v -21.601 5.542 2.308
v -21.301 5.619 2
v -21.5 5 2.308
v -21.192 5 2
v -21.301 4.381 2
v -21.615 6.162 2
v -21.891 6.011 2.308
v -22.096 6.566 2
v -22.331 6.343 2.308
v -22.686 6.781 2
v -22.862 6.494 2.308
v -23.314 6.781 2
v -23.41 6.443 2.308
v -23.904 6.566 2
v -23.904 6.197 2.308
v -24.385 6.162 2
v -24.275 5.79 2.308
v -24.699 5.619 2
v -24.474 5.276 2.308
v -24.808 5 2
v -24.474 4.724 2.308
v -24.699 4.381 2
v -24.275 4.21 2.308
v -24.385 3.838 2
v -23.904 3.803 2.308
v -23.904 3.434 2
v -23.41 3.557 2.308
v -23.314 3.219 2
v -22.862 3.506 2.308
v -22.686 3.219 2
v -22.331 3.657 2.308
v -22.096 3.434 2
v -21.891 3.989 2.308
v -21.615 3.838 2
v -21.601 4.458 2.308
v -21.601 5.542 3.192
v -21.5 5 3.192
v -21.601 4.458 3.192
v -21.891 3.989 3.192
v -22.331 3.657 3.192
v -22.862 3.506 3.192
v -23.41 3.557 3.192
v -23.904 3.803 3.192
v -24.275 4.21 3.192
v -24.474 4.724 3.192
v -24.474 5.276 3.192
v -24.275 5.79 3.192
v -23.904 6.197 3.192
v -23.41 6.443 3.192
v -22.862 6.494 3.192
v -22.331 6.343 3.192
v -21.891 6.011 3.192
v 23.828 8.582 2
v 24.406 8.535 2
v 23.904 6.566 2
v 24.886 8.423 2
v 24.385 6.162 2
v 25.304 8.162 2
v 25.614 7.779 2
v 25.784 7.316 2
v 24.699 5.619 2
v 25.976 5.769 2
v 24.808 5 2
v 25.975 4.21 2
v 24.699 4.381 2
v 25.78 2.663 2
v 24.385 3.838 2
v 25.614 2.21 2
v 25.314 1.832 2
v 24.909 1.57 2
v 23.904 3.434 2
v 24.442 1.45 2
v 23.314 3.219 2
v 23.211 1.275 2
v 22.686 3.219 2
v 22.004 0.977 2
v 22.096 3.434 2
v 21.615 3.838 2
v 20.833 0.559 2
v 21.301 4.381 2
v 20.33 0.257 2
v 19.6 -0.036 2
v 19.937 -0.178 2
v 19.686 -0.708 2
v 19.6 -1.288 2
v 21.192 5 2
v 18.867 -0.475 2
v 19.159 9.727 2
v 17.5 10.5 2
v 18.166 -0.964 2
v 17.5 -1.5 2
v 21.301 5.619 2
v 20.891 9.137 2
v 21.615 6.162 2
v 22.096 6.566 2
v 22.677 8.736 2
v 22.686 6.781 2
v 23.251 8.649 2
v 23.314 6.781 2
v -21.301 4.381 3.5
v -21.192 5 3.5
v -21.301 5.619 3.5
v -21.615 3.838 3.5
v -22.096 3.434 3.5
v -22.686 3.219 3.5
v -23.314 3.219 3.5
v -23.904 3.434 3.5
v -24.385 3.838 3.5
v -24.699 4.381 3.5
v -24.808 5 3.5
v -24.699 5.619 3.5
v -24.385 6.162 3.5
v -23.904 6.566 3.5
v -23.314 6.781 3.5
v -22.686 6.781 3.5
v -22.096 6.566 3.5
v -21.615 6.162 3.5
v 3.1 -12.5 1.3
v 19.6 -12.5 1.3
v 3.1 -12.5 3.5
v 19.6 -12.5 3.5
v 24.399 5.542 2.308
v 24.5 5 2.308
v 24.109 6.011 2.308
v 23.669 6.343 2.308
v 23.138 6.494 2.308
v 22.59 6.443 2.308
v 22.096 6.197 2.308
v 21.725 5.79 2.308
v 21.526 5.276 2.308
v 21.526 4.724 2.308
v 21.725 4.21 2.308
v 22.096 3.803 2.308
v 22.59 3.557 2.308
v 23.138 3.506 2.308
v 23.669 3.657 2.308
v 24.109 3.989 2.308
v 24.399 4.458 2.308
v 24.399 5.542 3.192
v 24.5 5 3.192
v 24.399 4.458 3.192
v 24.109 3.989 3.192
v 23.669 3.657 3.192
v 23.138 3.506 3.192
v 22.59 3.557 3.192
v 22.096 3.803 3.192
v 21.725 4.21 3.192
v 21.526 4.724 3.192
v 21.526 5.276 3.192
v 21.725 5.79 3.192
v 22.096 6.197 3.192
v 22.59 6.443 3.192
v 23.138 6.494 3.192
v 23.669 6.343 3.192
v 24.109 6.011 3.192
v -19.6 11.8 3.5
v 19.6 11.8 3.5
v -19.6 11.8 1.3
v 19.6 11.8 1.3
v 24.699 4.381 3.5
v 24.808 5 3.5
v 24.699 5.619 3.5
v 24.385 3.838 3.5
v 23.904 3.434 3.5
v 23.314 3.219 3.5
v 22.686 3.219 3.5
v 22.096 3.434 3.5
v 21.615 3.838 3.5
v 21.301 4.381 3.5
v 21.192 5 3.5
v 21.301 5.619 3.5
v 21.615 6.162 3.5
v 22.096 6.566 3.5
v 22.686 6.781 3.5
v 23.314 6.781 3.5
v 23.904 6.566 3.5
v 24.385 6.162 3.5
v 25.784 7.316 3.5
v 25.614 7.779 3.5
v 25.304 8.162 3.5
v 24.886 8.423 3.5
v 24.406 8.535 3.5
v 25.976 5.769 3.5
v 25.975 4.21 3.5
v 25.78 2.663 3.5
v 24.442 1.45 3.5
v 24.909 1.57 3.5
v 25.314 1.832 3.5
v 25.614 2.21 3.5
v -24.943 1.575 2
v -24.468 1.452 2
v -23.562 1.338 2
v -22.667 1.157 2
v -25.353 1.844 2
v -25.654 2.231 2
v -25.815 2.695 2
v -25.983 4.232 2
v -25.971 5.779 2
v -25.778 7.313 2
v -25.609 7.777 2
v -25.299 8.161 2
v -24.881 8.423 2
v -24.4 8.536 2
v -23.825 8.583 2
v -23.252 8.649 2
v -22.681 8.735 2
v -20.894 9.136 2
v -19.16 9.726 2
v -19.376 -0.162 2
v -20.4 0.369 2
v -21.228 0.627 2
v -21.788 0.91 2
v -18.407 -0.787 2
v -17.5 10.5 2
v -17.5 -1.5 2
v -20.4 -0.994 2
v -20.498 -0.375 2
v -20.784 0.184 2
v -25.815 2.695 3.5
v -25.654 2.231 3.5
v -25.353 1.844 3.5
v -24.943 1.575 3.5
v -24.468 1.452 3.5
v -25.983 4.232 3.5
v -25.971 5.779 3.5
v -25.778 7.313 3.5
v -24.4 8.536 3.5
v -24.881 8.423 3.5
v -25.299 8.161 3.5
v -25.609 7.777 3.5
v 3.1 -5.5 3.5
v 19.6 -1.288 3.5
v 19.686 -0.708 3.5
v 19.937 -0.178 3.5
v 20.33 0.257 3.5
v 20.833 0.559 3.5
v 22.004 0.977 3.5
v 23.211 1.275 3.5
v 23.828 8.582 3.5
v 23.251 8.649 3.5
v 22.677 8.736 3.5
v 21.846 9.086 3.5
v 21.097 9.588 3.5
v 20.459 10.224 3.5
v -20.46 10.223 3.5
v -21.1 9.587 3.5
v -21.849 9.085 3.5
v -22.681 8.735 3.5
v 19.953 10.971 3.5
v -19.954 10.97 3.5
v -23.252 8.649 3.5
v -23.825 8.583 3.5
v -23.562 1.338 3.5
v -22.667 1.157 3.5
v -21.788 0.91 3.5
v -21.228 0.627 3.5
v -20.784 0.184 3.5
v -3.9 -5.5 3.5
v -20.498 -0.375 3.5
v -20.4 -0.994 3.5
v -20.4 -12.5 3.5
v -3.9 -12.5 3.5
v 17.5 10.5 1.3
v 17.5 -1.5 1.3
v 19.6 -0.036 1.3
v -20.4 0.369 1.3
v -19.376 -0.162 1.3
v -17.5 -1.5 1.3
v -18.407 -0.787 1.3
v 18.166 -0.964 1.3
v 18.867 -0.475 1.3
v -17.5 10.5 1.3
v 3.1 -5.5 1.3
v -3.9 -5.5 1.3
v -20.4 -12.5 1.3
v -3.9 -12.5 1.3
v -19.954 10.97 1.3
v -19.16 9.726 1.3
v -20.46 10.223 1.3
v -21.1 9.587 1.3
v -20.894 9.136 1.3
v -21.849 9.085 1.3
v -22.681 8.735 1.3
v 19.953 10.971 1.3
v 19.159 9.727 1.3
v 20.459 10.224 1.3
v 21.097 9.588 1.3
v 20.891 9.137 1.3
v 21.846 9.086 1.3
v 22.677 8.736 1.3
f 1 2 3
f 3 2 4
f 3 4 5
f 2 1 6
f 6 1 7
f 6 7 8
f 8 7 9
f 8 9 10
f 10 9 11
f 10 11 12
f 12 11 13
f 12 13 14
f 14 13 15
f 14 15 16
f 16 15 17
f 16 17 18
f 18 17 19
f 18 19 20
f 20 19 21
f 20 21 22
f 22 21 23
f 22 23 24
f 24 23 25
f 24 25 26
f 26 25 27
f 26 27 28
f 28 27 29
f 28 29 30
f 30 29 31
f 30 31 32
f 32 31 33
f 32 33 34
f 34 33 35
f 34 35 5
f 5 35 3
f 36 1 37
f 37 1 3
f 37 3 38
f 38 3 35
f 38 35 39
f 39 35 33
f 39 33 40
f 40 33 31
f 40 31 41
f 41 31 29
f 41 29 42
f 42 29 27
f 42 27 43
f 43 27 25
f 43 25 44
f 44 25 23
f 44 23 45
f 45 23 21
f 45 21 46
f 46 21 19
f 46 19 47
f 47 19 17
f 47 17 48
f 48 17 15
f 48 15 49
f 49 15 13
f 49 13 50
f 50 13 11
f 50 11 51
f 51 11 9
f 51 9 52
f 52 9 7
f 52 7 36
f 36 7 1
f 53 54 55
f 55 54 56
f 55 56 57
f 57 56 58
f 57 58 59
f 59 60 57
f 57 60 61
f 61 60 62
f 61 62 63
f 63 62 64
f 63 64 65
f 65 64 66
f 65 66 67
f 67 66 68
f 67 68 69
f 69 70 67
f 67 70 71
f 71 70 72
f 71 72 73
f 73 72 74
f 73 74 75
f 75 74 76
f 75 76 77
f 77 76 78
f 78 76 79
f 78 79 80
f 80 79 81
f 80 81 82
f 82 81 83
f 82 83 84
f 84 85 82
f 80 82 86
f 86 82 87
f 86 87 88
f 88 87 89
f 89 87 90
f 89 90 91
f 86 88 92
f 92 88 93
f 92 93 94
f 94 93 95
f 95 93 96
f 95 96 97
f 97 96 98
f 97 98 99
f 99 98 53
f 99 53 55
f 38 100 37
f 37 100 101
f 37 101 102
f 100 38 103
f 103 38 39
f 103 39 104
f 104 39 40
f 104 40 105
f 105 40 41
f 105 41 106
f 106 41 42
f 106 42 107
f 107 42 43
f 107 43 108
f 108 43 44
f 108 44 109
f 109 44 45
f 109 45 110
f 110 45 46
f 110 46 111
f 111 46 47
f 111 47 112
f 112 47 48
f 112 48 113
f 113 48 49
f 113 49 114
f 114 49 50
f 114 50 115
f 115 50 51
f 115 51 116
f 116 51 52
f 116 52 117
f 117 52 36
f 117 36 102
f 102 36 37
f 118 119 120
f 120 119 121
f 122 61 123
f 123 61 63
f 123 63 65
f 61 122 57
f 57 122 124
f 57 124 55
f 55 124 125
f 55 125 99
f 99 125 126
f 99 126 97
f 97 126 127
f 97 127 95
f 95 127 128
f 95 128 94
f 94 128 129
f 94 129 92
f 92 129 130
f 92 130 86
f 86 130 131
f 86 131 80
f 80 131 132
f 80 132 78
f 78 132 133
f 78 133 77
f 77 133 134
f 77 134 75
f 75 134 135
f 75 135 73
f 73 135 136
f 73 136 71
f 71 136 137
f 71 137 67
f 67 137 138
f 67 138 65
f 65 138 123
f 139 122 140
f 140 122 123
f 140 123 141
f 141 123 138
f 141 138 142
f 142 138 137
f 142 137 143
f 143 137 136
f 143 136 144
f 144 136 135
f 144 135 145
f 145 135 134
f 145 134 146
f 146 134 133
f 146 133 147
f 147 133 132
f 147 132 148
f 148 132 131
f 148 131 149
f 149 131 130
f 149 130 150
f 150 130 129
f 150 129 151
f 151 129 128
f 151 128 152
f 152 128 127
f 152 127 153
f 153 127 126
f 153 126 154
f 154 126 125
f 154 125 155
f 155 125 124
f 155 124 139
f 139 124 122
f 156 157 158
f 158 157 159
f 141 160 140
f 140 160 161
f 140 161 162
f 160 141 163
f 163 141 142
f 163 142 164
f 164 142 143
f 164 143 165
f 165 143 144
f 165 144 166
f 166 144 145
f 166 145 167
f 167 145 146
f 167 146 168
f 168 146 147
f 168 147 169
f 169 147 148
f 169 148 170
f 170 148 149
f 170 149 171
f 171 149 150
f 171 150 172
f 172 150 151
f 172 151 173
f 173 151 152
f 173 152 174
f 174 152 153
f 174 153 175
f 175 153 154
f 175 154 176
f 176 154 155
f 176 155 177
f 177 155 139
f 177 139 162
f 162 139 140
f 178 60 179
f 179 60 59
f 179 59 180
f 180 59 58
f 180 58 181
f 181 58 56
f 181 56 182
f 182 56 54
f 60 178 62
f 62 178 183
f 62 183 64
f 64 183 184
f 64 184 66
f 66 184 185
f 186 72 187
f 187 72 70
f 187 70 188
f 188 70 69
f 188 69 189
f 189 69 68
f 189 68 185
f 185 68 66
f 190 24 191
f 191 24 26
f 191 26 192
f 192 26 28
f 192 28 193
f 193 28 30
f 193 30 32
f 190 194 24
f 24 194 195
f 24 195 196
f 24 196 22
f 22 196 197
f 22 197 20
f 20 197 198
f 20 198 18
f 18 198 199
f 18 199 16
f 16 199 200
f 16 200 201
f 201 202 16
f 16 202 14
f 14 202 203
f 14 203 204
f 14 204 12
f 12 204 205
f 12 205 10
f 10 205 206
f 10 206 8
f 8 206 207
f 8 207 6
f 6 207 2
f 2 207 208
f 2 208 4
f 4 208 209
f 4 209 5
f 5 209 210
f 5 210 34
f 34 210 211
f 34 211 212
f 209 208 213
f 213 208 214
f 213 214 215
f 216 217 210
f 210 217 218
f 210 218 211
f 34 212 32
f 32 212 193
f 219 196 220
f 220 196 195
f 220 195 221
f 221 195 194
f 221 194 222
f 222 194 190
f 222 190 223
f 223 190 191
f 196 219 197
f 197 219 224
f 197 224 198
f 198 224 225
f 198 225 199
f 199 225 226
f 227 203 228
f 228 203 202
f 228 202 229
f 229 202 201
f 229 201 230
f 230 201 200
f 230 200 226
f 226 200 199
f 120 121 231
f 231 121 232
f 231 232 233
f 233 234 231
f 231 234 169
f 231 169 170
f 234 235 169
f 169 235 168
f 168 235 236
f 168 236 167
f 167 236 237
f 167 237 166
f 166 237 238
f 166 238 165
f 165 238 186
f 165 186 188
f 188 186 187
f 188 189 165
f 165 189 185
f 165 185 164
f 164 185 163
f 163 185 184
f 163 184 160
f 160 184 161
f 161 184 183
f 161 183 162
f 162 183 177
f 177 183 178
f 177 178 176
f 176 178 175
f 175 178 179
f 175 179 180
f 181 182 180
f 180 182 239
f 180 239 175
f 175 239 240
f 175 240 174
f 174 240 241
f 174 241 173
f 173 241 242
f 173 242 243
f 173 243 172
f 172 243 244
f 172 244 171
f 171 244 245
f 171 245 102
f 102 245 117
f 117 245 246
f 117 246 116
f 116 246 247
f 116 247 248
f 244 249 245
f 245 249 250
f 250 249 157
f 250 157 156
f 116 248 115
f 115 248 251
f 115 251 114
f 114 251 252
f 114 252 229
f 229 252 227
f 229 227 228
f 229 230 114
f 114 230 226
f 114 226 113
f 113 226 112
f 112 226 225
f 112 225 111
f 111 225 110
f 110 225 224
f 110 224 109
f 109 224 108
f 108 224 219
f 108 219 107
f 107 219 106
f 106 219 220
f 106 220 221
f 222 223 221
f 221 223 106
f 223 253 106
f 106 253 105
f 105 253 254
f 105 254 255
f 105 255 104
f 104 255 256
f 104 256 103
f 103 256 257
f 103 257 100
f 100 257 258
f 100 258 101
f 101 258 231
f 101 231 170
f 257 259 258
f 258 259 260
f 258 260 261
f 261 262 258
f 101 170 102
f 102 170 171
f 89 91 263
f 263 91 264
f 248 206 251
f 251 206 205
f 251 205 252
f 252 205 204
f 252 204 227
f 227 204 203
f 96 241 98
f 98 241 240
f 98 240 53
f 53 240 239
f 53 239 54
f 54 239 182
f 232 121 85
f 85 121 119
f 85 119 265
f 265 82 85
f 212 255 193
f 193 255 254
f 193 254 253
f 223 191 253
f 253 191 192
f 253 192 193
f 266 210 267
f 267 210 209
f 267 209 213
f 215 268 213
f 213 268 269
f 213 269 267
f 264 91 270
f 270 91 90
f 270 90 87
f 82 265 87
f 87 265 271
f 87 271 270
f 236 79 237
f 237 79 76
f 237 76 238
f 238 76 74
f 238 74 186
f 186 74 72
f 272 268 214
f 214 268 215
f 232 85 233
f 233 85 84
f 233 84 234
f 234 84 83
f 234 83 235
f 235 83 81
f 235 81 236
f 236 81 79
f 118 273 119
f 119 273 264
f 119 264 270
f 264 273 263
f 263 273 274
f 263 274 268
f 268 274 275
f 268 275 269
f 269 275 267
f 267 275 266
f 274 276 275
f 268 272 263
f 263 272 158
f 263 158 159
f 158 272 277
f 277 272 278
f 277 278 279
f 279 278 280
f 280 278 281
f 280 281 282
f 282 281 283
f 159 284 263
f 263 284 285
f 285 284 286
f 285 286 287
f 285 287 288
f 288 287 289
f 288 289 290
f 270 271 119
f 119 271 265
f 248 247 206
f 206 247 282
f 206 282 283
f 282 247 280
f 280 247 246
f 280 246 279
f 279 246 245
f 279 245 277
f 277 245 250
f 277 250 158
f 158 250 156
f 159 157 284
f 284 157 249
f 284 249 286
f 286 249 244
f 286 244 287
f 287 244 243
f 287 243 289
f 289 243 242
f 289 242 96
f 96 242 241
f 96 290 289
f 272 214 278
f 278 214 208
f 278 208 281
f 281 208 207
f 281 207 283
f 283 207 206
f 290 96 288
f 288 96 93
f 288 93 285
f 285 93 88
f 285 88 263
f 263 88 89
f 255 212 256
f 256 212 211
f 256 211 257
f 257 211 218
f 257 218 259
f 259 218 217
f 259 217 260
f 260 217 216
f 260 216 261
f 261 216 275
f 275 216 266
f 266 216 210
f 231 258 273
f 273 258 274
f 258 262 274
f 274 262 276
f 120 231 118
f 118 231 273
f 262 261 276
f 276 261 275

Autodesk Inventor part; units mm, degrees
ref_plane "YZ Plane" through (0, 0, 0) normal (1, 0, 0) x (0, 1, 0)
ref_plane "XZ Plane" through (0, 0, 0) normal (0, 1, 0) x (-1, 0, 0)
ref_plane "XY Plane" through (0, 0, 0) normal (0, 0, 1) x (1, 0, 0)
sketch "Sketch1" plane through (0, 0, 0) normal (0, 0, 1) x (1, 0, 0)
  line L0 (0, 0) -> (-17.5, 0) construction
  line L1 (-17.5, 0) -> (17.5, 0) construction
  line L2 (17.5, 0) -> (17.5, -10.5)
  line L3 (17.5, -10.5) -> (17.5, 10.5)
  line L4 (17.5, 10.5) -> (-17.5, 10.5)
  line L5 (-17.5, 10.5) -> (-17.5, -10.5)
  line L6 (17.5, -10.5) -> (3.5, -10.5)
  line L7 (3.5, -10.5) -> (3.5, -5.5)
  line L8 (3.5, -5.5) -> (-3.5, -5.5)
  line L9 (-3.5, -5.5) -> (-3.5, -10.5)
  line L10 (-3.5, -10.5) -> (-17.5, -10.5)
  dimension "d4" = 17.5
  dimension "d5" = 35
  dimension "d6" = 10.5
  dimension "d7" = 21
  dimension "d8" = 14
  dimension "d9" = 5
  dimension "d10" = 7
extrude "Extrusion1" add sketch "Sketch1" along normal blind 3.5
sketch "Sketch2" plane through (0, 0, 0) normal (0, 0, -1) x (-1, 0, 0)
  line L0 (-17.5, -10.5) -> (-17.5, 10.5) construction
  line L1 (-17.5, 10.5) -> (-16.5, 10.5) construction
  line L2 (-17.5, 10.5) -> (17.5, 10.5) construction
  line L3 (-16.5, 10.5) -> (-16.5, 9.5) construction
  line L4 (-16.5, 9.5) -> (-17.5, 9.5) construction
  line L5 (-16.5, 9.5) -> (-13.5, 9.5) construction
  line L6 (-15, 9.5) -> (-15, 8) construction
  line L7 (-16.5, 9.5) -> (-16.5, 7.1912) construction
  circle A0 centre (-15, 8) radius 1.5 construction
  circle A1 centre (-15, 8) radius 1.5
  line L8 (-15, 8) -> (-17.5, 8) construction
  line L9 (17.5, 10.5) -> (17.5, -10.5) construction
  line L10 (17.5, 10.5) -> (16.5, 10.5) construction
  line L11 (16.5, 10.5) -> (17.5, 10.5) construction
  line L12 (17.5, 10.5) -> (17.5, 9.5) construction
  line L13 (17.5, 9.5) -> (17.5, 5.455) construction
  line L14 (17.5, 10.5) -> (15, 10.5) construction
  line L15 (15, 10.5) -> (15, 8) construction
  line L16 (15, 8) -> (17.5, 8) construction
  circle A2 centre (15, 8) radius 1.5 construction
  circle A3 centre (15, 8) radius 1.5
  point P0 (0, 0)
  dimension "d13" = 1
  dimension "d14" = 1
  dimension "d15" = 3
  dimension "d16" = 1.5
  dimension "d17" = 3
  dimension "d18" = 1
  dimension "d19" = 1
  dimension "d20" = 2.5
  dimension "d21" = 2.5
  dimension "d22" = 3
extrude "Extrusion2" add sketch "Sketch2" along normal blind 1
sketch "Sketch3" plane through (-17.5, -10.5, 0) normal (-1, 0, 0) x (0, 0, 1)
  line L0 (0, 21) -> (3.5, 21) construction
  line L1 (3.5, 21) -> (2, 21) construction
  line L2 (2, 21) -> (2, 0)
  line L3 (0, 0) -> (3.5, 0) projected
  line L4 (3.5, 0) -> (2, 0)
  line L5 (3.5, 21) -> (3.5, 0) projected
  line L6 (3.5, 0) -> (3.5, 21)
  line L7 (3.5, 21) -> (2, 21)
  point P0 (0, 10.5)
  dimension "d25" = 1.5
sketch "Sketch4" plane through (0, 0, 3.5) normal (0, 0, 1) x (1, 0, 0)
  line L0 (17.5, 10.5) -> (-17.5, 10.5) projected
  line L1 (-17.5, 10.5) -> (-17.5, 8.5)
  line L2 (-17.5, 10.5) -> (-17.5, -10.5) projected
  line L3 (-17.5, 8.5) -> (-25.5, 8.5) construction
  line L4 (-17.5, 10.5) -> (-17.5, 1.5) construction
  line L5 (-17.5, 10.5) -> (-17.5, -1.5) construction
  line L6 (-17.5, -1.5) -> (-17.5, 1.5) construction
  line L7 (-17.5, 1.5) -> (-25.5542, 1.5) construction
  arc A0 (-17.5, -1.5) -> (-25.5542, 1.5) centre (-25.5542, -10.8116) ccw
  arc A1 (-25.5, 8.5) -> (-17.5, 10.5) centre (-25.5, 25.5) ccw
  line L8 (-17.5, 5) -> (-21.5, 5) construction
  line L9 (-21.5, 5) -> (-23, 5) construction
  circle A2 centre (-23, 5) radius 1.5
  line L10 (-24.5, 5) -> (-26, 5) construction
  arc A3 (-25.5, 8.5) -> (-25.5542, 1.5) centre (-12.8112, 4.9016) ccw
  line L11 (17.5, -10.5) -> (17.5, 10.5) projected
  line L12 (17.5, 10.5) -> (17.5, 8.5)
  line L13 (17.5, 10.5) -> (17.5, -1.5)
  line L14 (17.5, 10.5) -> (17.5, 8.5)
  line L15 (17.5, -1.5) -> (17.5, 1.5)
  line L16 (17.5, 8.5) -> (25.5, 8.5) construction
  line L17 (17.5, 1.5) -> (25.5, 1.5) construction
  arc A4 (25.5, 1.5) -> (17.5, -1.5) centre (25.5545, -10.8119) ccw
  arc A5 (17.5, 10.5) -> (25.5, 8.5) centre (25.5, 25.5) ccw
  line L18 (25.5, 8.5) -> (25.5, 5) construction
  line L19 (17.5, 5) -> (21.5, 5) construction
  line L20 (21.5, 5) -> (23, 5) construction
  circle A6 centre (23, 5) radius 1.5
  line L21 (24.5, 5) -> (26, 5) construction
  arc A7 (25.5, 1.5) -> (25.5, 8.5) centre (13.5, 5) ccw
  point P0 (0, 0)
  dimension "d33" = 3
  dimension "d44" = 3
  dimension "d26" = 2
  dimension "d27" = 8
  dimension "d28" = 9
  dimension "d29" = 12
  dimension "d30" = 12.3116
  dimension "d31" = 4
  dimension "d32" = 1.5
  dimension "d34" = 1.5
  dimension "d35" = 12
  dimension "d36" = 2
  dimension "d37" = 3
  dimension "d38" = 8
  dimension "d39" = 12.312
  dimension "d40" = 17
  dimension "d41" = 3.5
  dimension "d42" = 4
  dimension "d43" = 1.5
  dimension "d45" = 1.5
extrude "Extrusion3" add sketch "Sketch4" against normal blind 1.5
fillet "Fillet1" radius 1.5 4 edges at (-25.5, 8.5, 2.75) (-25.5542, 1.5, 2.75) (25.5, 1.5, 2.75) (25.5, 8.5, 2.75)
chamfer "Chamfer1" distance 0.3084 angle 45 1 edges at (21.5, 5, 3.5)
chamfer "Chamfer2" distance 0.3084 angle 45 3 edges at (21.5, 5, 2) (-24.5, 5, 3.5) (-24.5, 5, 2)
thread "Thread1" size "M3x0.5" class "6H" standard "ISO Metric profile" full length
thread "Thread2" size "M3x0.5" class "6H" standard "ISO Metric profile" full length
sketch "Sketch5" plane through (15, 8, -1) normal (0, 0, -1) x (-1, 0, 0)
  circle A0 centre (0, 0) radius 1.5 projected
  circle A1 centre (0, 0) radius 1.5
  circle A2 centre (30, 0) radius 1.5 projected
  circle A3 centre (30, 0) radius 1.5
  point P0 (15, -8)
  dimension "d59" = 3
extrude "Extrusion4" cut sketch "Sketch5" against normal blind 1
sketch "Sketch6" plane through (0, 0, 0) normal (0, 0, -1) x (-1, 0, 0)
  line L0 (-17.5, -10.5) -> (-17.5, 10.5) projected
  line L1 (-17.5, 10.5) -> (17.5, 10.5) projected
  line L2 (-17.5, 10.5) -> (17.5, 10.5)
  line L3 (17.5, 10.5) -> (17.5, -10.5)
  line L4 (-3.5, -10.5) -> (-17.5, -10.5) projected
  line L5 (-17.5, -10.5) -> (-3.5, -10.5)
  line L6 (-3.5, -10.5) -> (-3.5, -5.5)
  line L7 (-3.5, -5.5) -> (3.5, -5.5)
  line L8 (3.5, -5.5) -> (3.5, -10.5)
  line L9 (3.5, -10.5) -> (17.5, -10.5)
  point P0 (0, 0)
  dimension "d62" = 21
  dimension "d63" = 5
  dimension "d64" = 7
extrude "Extrusion5" cut sketch "Sketch6" against normal blind 1.3
sketch "Sketch7" plane through (0, 0, 1.3) normal (0, 0, -1) x (-1, 0, 0)
  line L0 (-3.5, -5.5) -> (-3.5, -10.5) projected
  line L1 (-3.5, -10.5) -> (-3.5, -5.5)
  line L2 (-3.5, -5.5) -> (3.5, -5.5)
  line L3 (3.5, -5.5) -> (3.5, -10.5)
  line L4 (3.5, -10.5) -> (-3.5, -10.5)
  point P0 (0, 0)
  dimension "d67" = 7
extrude "Extrusion6" add sketch "Sketch7" against normal blind 2.2
sketch "Sketch8" plane through (-17.5, 10.5, 3.5) normal (0, 1, 0) x (1, 0, 0)
  point P0 (17.5, 3.5)
sketch "Sketch9" plane through (0, 0, 3.5) normal (0, 0, 1) x (1, 0, 0)
  line L0 (-17.5, 10.5) -> (-17.5, -10.5) projected
  line L1 (-17.5, 10.5) -> (-17.5, 11.8)
  line L2 (17.5, 10.5) -> (-17.5, 10.5) projected
  line L3 (17.5, 10.5) -> (17.5, 11.8)
  line L4 (17.5, 11.8) -> (-17.5, 11.8)
  line L5 (-17.5, 10.5) -> (17.5, 10.5)
  line L6 (17.5, 11.8) -> (20.2, 11.8)
  line L7 (-17.5, 11.8) -> (-19.5, 11.8)
  line L8 (17.5, -10.5) -> (17.5, 10.5) projected
  line L9 (17.5, -1.4787) -> (17.5, 0.3213)
  line L10 (-17.5, -10.5) -> (17.5, -10.5) projected
  line L11 (-17.5, -10.5) -> (17.5, -10.5)
  line L12 (17.5, -10.5) -> (17.5, -12.5)
  line L13 (17.5, -12.5) -> (-17.5, -12.5)
  line L14 (-17.5, -12.5) -> (-17.5, -10.5)
  line L15 (17.5, -12.5) -> (19.6, -12.5)
  line L16 (19.6, -12.5) -> (19.6, -1.4787)
  line L17 (19.6, -1.4787) -> (17.5, -1.4787)
  line L18 (17.5, -1.4787) -> (17.5, -10.5)
  line L19 (-17.5, -12.5) -> (-20.4, -12.5)
  line L20 (-20.4, -12.5) -> (-20.4, -1.4787)
  line L21 (-20.4, -1.4787) -> (-17.5, -1.4787)
  line L22 (-17.5, -1.4787) -> (-17.5, -10.5)
  line L23 (-20.4, -1.4787) -> (-20.4, 0.3692)
  arc A0 (-17.5, -1.5) -> (-24.468, 1.452) centre (-25.5542, -10.8116) ccw projected
  line L24 (19.6, -1.4787) -> (19.6, -0.0355)
  arc A1 (24.4416, 1.4497) -> (17.5, -1.5) centre (25.5545, -10.8119) ccw projected
  arc A2 (19.6, -0.0355) -> (17.5, -1.5) centre (25.5545, -10.8119) ccw
  arc A3 (-17.5, -1.5) -> (-20.4, 0.3692) centre (-25.5542, -10.8116) ccw
  point P0 (0, 0)
  dimension "d70" = 1.3
  dimension "d71" = 2.7
  dimension "d72" = 2
  dimension "d74" = 1.8
  dimension "d76" = 2
  dimension "d77" = 2.1
  dimension "d78" = 2.9
  dimension "d79" = 1.8479
extrude "Extrusion7" add sketch "Sketch9" against normal blind 2.2 contours L1 L4 L3 L2 | L0 L14 L19 L20 L21 A0 | L21 L23 A0 | L10 L12 L13 L14 | L8 A1 L17 L16 L15 L12 | A1 L24 L17
sketch "Sketch10" plane through (0, 0, 3.5) normal (0, 0, 1) x (1, 0, 0)
  line L0 (17.5, 11.8) -> (-17.5, 11.8) projected
  line L1 (-17.5, 11.8) -> (-19.6, 11.8)
  line L2 (-19.6, 11.8) -> (-19.6, 9.5567)
  arc A0 (-24.4004, 8.5356) -> (-17.5, 10.5) centre (-25.5, 25.5) ccw projected
  line L3 (-17.5, 11.8) -> (-17.5, 10.5)
  arc A1 (-19.6, 9.5567) -> (-17.5, 10.5) centre (-25.5, 25.5) ccw
  line L4 (17.5, 11.8) -> (19.6, 11.8)
  line L5 (19.6, 11.8) -> (19.6, 9.5567)
  arc A2 (17.5, 10.5) -> (24.406, 8.5352) centre (25.5, 25.5) ccw projected
  arc A3 (17.5, 10.5) -> (19.6, 9.5567) centre (25.5, 25.5) ccw
  line L6 (17.5, 11.8) -> (17.5, -1.5) projected
  line L7 (17.5, 11.8) -> (17.5, 10.5)
  arc A4 (-24.4004, 8.5356) -> (-25.7781, 7.313) centre (-24.3033, 7.0387) ccw projected
  arc A5 (-24.4004, 8.5356) -> (-19.6, 11.8) centre (-24.0729, 13.2158) ccw
  arc A6 (19.6, 11.8) -> (24.406, 8.5352) centre (24.0734, 13.2154) ccw
  arc A7 (19.6, 9.5567) -> (24.406, 8.5352) centre (25.5, 25.5) ccw
  arc A8 (-24.4004, 8.5356) -> (-19.6, 9.5567) centre (-25.5, 25.5) ccw
  point P0 (0, 0)
  point P1 (22.6771, 8.736)
  point P2 (-22.6812, 8.7353)
  dimension "d82" = 2.1
  dimension "d83" = 2.1
  dimension "d84" = 4.692
extrude "Extrusion8" add sketch "Sketch10" against normal blind 2.2 contours L3 A0 L2 L1 | L2 A0 A5 | L4 L5 A2 L6 | A6 A2 L5
sketch "Sketch11" plane through (0, 0, 3.5) normal (0, 0, 1) x (1, 0, 0)
  point P0 (0, 0)
fillet "Fillet2" radius 2 2 edges at (-20.4, 0.3692, 2.75) (19.6, -0.0355, 2.75)
sketch "Sketch12" plane through (0, 0, 3.5) normal (0, 0, 1) x (1, 0, 0)
  line L0 (19.6, -12.5) -> (-20.4, -12.5) construction
  line L1 (-20.4, -12.5) -> (-3.9, -12.5) construction
  line L2 (-3.9, -12.5) -> (3.1, -12.5)
  line L3 (3.1, -12.5) -> (3.1, -5.5)
  line L4 (3.1, -5.5) -> (-3.9, -5.5)
  line L5 (-3.9, -5.5) -> (-3.9, -12.5)
  point P0 (0, 0)
  dimension "d88" = 16.5
  dimension "d89" = 7
  dimension "d90" = 7
extrude "Extrusion9" cut sketch "Sketch12" against normal blind 2.2
properties part number "casereceiver"
